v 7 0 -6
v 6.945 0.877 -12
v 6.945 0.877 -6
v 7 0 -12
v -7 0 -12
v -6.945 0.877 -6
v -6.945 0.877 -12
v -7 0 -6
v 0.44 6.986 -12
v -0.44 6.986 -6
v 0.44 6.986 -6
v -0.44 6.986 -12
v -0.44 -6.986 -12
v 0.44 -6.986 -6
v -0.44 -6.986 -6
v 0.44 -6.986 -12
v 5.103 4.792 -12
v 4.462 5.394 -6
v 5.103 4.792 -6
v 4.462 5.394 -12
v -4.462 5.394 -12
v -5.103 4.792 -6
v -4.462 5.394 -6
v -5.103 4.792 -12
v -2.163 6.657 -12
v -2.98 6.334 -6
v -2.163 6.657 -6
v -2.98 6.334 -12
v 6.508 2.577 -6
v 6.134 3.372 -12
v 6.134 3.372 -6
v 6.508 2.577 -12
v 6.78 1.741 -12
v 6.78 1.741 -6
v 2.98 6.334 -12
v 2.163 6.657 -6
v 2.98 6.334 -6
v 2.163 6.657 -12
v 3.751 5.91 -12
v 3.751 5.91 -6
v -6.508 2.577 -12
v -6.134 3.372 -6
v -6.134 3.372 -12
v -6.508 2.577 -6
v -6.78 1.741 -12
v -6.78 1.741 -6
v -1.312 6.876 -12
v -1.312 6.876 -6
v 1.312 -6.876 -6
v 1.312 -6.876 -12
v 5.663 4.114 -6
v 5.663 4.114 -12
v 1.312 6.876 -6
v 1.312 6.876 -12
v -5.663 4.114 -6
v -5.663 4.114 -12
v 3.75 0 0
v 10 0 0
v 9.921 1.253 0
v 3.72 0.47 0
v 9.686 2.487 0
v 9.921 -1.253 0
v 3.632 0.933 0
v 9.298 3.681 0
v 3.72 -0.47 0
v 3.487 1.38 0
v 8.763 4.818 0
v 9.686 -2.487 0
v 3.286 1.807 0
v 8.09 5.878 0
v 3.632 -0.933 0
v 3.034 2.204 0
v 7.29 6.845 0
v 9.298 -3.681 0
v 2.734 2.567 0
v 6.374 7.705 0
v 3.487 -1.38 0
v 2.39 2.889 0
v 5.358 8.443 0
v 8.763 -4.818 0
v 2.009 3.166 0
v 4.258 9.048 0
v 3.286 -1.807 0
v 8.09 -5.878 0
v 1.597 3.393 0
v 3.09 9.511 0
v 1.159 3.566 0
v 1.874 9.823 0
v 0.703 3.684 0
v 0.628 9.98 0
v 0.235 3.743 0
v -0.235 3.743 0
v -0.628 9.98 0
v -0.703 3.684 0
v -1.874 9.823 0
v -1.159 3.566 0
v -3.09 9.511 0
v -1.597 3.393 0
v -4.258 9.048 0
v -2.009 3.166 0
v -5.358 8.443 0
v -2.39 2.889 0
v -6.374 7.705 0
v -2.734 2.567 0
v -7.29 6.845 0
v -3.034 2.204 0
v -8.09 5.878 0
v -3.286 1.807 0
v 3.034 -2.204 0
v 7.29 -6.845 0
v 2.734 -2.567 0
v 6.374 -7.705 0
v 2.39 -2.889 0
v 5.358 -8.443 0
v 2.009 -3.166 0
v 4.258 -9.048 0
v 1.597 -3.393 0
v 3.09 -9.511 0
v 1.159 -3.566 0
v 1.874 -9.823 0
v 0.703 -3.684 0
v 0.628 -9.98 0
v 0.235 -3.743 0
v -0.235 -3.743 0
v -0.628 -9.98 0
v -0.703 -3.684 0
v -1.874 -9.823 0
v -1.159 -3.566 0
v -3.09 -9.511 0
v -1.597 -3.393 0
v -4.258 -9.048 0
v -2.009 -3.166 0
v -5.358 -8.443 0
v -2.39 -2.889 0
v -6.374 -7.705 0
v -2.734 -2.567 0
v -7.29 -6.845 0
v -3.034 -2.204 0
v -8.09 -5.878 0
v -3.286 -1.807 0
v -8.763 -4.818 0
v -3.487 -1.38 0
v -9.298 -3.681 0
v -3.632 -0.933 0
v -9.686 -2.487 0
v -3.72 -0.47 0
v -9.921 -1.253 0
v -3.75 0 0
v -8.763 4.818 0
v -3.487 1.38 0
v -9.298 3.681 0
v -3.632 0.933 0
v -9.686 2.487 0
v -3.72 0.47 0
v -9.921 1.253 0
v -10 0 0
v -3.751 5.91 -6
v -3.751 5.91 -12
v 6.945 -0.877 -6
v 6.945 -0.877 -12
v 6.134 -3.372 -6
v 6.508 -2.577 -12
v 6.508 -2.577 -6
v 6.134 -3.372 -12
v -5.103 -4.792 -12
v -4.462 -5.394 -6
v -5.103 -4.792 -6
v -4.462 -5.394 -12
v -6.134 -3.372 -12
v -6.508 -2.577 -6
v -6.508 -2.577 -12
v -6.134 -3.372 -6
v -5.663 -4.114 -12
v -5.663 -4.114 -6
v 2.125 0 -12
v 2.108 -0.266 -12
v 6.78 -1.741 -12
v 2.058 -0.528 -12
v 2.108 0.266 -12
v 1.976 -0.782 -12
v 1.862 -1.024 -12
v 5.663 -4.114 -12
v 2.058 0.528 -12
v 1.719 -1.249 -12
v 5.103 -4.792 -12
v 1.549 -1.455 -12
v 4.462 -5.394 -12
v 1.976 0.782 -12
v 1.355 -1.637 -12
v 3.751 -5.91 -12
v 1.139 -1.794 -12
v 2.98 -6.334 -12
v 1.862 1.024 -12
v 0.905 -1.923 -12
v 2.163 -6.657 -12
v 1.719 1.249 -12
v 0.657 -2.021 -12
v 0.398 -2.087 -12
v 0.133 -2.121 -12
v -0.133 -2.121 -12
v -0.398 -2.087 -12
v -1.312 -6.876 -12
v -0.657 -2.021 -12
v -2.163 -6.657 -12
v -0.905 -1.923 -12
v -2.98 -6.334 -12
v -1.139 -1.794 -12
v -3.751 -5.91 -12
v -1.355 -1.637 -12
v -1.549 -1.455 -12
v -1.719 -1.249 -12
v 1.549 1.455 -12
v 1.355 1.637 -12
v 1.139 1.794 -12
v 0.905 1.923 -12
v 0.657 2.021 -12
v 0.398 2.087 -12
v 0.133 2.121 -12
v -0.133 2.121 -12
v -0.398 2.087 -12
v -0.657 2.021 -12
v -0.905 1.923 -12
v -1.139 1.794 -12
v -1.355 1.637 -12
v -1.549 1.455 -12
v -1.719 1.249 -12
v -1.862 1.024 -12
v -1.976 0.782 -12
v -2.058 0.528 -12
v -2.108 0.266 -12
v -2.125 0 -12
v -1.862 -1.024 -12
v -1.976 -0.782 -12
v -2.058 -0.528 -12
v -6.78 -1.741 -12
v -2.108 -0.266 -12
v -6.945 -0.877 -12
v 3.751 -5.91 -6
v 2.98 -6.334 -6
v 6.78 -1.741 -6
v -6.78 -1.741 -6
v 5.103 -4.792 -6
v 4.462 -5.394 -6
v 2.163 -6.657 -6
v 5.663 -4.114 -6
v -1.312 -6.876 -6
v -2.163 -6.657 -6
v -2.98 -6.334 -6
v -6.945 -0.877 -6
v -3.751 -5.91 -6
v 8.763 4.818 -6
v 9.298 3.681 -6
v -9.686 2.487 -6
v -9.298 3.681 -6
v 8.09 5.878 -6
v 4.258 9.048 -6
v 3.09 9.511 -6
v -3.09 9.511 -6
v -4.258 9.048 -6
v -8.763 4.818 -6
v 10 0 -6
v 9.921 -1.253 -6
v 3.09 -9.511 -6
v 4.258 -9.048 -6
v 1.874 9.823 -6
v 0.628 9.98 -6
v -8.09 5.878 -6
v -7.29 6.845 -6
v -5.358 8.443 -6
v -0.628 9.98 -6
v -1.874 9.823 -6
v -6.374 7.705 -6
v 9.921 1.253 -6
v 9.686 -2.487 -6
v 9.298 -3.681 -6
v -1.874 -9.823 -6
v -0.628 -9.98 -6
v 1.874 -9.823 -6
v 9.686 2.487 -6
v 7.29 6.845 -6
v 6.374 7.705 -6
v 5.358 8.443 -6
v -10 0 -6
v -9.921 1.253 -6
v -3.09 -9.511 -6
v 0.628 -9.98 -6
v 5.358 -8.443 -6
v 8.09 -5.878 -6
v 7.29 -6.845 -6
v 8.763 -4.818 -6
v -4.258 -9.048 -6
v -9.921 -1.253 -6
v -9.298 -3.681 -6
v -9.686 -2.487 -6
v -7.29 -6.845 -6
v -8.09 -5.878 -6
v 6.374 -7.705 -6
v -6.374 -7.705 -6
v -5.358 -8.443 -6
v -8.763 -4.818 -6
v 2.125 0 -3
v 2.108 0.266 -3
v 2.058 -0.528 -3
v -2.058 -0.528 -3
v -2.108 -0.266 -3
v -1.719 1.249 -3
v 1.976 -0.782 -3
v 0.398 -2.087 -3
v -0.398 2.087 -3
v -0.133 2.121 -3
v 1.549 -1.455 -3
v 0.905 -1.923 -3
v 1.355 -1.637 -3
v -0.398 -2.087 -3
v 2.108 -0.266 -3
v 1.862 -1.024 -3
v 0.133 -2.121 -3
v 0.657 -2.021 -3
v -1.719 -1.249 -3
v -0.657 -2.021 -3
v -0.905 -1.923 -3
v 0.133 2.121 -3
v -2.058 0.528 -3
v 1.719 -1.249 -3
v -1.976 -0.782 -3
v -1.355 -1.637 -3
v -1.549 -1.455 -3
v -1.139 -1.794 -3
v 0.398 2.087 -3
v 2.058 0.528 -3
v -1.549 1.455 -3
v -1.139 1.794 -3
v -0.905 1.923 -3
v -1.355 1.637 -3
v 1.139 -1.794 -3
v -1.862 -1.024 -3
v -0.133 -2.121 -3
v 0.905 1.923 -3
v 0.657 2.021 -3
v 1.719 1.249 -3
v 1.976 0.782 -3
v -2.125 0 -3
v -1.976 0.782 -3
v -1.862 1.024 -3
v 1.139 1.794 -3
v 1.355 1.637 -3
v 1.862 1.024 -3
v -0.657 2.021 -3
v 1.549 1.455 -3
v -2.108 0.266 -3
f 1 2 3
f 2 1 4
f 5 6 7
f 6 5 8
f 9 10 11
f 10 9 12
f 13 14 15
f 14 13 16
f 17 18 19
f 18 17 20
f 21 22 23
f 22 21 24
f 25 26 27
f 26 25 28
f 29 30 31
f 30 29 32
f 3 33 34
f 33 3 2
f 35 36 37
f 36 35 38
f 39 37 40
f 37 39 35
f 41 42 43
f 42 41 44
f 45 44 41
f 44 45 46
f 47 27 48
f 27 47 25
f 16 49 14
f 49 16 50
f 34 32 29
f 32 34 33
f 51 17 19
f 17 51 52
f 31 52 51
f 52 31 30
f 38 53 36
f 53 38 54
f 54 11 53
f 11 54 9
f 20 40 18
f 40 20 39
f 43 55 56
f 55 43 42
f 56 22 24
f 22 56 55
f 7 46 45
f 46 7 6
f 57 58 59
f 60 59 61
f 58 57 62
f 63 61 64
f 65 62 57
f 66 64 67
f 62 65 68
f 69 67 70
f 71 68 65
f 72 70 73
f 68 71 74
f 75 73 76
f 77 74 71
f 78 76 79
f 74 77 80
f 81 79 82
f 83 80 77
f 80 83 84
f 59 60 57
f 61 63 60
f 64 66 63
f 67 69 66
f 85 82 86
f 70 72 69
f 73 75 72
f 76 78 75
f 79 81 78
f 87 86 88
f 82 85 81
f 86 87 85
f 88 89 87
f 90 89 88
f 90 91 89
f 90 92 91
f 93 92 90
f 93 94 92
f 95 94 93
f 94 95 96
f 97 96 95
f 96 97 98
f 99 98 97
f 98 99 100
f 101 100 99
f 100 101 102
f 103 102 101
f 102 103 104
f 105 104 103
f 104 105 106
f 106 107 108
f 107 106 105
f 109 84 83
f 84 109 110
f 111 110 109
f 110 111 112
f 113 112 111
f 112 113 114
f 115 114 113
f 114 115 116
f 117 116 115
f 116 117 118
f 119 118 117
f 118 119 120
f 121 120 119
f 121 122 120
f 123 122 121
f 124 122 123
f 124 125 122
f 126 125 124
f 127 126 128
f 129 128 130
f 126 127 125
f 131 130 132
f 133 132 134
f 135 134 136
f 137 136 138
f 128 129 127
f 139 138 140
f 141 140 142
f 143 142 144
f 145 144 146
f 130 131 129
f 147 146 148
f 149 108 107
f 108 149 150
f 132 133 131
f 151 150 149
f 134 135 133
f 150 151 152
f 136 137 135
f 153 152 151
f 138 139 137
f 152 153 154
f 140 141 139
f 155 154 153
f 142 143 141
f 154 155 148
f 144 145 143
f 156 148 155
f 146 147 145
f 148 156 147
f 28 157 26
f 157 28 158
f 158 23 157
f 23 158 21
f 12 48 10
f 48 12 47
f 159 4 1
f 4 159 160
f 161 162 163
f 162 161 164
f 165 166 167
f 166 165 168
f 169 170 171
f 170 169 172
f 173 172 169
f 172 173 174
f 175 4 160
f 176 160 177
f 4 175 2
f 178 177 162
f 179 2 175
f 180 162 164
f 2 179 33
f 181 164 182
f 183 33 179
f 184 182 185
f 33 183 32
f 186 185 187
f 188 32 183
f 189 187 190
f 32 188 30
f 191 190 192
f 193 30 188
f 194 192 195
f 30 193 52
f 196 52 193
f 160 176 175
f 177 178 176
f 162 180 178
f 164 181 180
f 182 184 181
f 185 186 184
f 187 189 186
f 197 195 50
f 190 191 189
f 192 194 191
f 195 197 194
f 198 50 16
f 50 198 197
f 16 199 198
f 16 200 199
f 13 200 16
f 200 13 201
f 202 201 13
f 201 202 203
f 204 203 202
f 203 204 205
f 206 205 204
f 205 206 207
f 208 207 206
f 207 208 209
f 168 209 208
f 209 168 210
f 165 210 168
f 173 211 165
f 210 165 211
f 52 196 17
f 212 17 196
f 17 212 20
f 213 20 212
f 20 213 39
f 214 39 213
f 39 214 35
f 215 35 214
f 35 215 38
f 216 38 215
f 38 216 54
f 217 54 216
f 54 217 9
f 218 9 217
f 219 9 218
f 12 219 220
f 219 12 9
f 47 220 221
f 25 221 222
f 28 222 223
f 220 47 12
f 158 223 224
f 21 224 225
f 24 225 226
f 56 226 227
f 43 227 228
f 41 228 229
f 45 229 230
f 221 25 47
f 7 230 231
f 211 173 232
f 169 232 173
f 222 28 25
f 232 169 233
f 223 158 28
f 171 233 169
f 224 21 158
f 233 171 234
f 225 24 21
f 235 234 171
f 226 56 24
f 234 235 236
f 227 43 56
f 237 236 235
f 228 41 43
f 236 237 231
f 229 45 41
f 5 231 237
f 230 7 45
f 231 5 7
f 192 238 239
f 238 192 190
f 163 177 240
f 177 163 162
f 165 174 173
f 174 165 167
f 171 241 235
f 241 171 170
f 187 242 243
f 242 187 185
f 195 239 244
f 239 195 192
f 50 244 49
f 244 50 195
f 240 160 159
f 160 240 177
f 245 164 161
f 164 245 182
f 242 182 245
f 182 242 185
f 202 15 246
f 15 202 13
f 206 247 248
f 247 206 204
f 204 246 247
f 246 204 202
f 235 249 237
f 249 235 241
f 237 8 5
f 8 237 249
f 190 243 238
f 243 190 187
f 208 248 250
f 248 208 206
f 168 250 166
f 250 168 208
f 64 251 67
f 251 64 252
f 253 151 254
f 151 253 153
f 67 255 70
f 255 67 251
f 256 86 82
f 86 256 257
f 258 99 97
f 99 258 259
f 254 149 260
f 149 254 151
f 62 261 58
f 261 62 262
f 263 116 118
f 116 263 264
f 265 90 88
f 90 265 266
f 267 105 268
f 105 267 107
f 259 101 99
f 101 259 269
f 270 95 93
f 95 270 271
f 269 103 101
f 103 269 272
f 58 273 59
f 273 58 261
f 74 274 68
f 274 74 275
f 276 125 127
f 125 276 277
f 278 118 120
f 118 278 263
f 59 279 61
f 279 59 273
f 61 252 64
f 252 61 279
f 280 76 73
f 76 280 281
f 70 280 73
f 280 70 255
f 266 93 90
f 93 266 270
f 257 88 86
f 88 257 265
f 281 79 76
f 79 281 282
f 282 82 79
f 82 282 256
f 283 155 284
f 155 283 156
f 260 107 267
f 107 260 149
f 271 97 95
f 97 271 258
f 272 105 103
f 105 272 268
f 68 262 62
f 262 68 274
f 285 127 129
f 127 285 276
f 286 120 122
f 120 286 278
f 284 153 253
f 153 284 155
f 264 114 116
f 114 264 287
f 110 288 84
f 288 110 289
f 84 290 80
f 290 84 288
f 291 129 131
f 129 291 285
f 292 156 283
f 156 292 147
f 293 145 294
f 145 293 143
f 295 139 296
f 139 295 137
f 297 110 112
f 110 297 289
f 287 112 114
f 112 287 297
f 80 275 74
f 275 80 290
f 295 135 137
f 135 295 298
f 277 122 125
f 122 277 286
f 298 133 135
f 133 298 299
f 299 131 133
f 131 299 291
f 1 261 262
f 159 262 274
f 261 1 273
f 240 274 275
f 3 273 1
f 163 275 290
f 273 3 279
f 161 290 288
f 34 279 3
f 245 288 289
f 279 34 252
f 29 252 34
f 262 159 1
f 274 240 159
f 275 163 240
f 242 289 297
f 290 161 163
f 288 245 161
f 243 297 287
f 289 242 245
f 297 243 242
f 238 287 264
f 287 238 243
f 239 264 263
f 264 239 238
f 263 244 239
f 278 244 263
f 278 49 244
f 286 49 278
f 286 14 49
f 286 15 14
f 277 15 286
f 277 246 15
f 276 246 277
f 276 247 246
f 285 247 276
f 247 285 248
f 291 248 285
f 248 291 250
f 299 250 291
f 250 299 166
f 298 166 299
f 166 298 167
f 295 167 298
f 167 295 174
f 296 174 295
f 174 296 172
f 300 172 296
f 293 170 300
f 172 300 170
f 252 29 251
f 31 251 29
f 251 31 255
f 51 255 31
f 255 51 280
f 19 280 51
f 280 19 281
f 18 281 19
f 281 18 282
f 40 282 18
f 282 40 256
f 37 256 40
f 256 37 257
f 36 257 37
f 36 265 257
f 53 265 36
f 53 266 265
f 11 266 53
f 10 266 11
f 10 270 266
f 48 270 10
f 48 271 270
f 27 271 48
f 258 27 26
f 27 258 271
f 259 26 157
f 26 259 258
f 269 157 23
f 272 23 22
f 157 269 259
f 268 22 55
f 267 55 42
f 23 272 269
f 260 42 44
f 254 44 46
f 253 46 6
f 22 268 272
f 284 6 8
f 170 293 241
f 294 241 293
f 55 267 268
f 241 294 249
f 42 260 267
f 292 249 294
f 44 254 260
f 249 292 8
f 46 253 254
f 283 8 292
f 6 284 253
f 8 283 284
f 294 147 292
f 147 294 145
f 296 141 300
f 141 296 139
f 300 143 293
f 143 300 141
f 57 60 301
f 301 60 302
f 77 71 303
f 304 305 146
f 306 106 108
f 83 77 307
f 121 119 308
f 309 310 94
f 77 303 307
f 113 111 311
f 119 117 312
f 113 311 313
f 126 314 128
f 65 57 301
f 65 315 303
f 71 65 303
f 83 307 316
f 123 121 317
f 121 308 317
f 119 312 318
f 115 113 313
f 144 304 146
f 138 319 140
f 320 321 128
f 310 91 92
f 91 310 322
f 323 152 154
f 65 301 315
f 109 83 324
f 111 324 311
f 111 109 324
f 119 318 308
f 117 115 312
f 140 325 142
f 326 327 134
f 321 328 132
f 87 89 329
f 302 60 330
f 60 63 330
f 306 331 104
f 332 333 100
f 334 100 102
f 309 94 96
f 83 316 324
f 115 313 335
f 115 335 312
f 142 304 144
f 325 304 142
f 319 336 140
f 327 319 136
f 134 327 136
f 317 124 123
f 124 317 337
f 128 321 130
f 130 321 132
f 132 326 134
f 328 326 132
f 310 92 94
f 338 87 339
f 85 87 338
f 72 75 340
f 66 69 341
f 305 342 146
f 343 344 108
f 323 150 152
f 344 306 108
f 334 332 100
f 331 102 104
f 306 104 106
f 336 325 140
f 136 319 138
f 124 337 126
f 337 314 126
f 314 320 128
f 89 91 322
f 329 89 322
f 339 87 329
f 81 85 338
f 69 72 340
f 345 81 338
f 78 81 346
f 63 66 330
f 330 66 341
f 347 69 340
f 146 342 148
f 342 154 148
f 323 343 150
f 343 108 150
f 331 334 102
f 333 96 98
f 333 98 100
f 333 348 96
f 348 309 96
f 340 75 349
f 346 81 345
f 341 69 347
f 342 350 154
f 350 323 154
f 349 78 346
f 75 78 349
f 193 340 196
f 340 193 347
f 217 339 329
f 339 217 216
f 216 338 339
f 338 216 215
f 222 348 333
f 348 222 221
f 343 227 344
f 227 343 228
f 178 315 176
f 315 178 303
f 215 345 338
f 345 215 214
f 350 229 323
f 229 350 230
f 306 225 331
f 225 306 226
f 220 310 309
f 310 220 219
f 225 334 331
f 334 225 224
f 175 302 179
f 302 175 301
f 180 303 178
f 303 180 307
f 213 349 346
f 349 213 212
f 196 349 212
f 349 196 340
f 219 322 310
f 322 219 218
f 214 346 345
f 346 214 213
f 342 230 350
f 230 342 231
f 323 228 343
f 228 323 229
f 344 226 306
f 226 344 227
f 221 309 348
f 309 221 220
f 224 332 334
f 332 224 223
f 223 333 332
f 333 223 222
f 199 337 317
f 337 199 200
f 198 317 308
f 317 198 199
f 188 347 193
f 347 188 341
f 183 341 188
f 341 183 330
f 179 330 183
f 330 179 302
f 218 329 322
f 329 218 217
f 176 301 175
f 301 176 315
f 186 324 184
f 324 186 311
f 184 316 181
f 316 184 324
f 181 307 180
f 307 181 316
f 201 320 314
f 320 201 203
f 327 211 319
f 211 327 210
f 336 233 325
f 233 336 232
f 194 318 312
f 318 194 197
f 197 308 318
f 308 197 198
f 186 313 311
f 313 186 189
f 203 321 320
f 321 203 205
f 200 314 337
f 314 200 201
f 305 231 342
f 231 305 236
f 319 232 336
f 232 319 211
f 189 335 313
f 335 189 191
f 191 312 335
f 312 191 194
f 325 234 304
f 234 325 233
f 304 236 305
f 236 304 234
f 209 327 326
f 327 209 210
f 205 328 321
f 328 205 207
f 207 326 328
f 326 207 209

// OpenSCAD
$fn = 50;


difference() {
	union() {
		translate(v = [0, 0, -12.0000000000]) {
			cylinder(h = 12, r = 7.0000000000);
		}
		translate(v = [0, 0, -6.0000000000]) {
			cylinder(h = 6, r = 10.0000000000);
		}
	}
	union() {
		translate(v = [0, 0, 0]) {
			rotate(a = [0, 0, 0]) {
				difference() {
					union() {
						#translate(v = [0, 0, -12.0000000000]) {
							cylinder(h = 12, r = 2.0000000000);
						}
						#translate(v = [0, 0, -3]) {
							cylinder(h = 3, r1 = 2.1250000000, r2 = 3.7500000000);
						}
						#translate(v = [0, 0, -12.0000000000]) {
							cylinder(h = 12, r = 2.1250000000);
						}
						#translate(v = [0, 0, -12.0000000000]) {
							cylinder(h = 12, r = 2.0000000000);
						}
					}
					union();
				}
			}
		}
	}
}
